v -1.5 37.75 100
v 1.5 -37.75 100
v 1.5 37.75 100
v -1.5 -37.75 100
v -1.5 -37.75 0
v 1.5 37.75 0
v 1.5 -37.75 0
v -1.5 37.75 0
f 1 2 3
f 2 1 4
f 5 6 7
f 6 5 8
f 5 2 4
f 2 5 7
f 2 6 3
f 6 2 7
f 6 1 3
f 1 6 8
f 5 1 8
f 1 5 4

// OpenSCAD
// file: Inlet.scad
$fn = 100;
tiny = 0.01;


/******************************************************
 * dx,dy: Maße, wie bei 'Boden' angegeben.
 *****************************************************/
module inlet_top_down(dx,dy) {
  h1 = 3;  
  dx1 = 5.9;
  dx2 = 4.0; // vier mal Fase an Ecken

  difference() {
     translate([0,0,h1/2]) cube([dx-2*dx1,dy-2*dx1,h1], true); 
     translate([+dx/2-dx1,+dy/2-dx1,h1/2-tiny]) rotate([0,0,45]) cube([dx2,dx2,h1+3*tiny], true);
     translate([+dx/2-dx1,-dy/2+dx1,h1/2-tiny]) rotate([0,0,45]) cube([dx2,dx2,h1+3*tiny], true);
     translate([-dx/2+dx1,+dy/2-dx1,h1/2-tiny]) rotate([0,0,45]) cube([dx2,dx2,h1+3*tiny], true);
     translate([-dx/2+dx1,-dy/2+dx1,h1/2-tiny]) rotate([0,0,45]) cube([dx2,dx2,h1+3*tiny], true);
     }
}


/******************************************************
 * dy: Maß, wie bei 'Boden' angegeben.
 * h:  Maß, wie bei 'Kante' angegeben.
 *****************************************************/
module inlet_front_back(h,dy) {
  h1 = 3;
  dy1 = 12+12.5;
  translate([0,0,h/2]) cube([h1,dy-dy1,h], true);
}


/******************************************************
 * dx: Maß, wie bei 'Boden' angegeben.
 * h:  Maß, wie bei 'Kante' angegeben.
 *****************************************************/
module inlet_left_right(h,dx) {
  h1 = 3;
  dx1 = 12+12.5;
  translate([0,0,h/2]) cube([dx-dx1,h1,h], true);
}
// main file
$fn = 100;

use <Inlet.scad>


inlet_front_back(100,100);
